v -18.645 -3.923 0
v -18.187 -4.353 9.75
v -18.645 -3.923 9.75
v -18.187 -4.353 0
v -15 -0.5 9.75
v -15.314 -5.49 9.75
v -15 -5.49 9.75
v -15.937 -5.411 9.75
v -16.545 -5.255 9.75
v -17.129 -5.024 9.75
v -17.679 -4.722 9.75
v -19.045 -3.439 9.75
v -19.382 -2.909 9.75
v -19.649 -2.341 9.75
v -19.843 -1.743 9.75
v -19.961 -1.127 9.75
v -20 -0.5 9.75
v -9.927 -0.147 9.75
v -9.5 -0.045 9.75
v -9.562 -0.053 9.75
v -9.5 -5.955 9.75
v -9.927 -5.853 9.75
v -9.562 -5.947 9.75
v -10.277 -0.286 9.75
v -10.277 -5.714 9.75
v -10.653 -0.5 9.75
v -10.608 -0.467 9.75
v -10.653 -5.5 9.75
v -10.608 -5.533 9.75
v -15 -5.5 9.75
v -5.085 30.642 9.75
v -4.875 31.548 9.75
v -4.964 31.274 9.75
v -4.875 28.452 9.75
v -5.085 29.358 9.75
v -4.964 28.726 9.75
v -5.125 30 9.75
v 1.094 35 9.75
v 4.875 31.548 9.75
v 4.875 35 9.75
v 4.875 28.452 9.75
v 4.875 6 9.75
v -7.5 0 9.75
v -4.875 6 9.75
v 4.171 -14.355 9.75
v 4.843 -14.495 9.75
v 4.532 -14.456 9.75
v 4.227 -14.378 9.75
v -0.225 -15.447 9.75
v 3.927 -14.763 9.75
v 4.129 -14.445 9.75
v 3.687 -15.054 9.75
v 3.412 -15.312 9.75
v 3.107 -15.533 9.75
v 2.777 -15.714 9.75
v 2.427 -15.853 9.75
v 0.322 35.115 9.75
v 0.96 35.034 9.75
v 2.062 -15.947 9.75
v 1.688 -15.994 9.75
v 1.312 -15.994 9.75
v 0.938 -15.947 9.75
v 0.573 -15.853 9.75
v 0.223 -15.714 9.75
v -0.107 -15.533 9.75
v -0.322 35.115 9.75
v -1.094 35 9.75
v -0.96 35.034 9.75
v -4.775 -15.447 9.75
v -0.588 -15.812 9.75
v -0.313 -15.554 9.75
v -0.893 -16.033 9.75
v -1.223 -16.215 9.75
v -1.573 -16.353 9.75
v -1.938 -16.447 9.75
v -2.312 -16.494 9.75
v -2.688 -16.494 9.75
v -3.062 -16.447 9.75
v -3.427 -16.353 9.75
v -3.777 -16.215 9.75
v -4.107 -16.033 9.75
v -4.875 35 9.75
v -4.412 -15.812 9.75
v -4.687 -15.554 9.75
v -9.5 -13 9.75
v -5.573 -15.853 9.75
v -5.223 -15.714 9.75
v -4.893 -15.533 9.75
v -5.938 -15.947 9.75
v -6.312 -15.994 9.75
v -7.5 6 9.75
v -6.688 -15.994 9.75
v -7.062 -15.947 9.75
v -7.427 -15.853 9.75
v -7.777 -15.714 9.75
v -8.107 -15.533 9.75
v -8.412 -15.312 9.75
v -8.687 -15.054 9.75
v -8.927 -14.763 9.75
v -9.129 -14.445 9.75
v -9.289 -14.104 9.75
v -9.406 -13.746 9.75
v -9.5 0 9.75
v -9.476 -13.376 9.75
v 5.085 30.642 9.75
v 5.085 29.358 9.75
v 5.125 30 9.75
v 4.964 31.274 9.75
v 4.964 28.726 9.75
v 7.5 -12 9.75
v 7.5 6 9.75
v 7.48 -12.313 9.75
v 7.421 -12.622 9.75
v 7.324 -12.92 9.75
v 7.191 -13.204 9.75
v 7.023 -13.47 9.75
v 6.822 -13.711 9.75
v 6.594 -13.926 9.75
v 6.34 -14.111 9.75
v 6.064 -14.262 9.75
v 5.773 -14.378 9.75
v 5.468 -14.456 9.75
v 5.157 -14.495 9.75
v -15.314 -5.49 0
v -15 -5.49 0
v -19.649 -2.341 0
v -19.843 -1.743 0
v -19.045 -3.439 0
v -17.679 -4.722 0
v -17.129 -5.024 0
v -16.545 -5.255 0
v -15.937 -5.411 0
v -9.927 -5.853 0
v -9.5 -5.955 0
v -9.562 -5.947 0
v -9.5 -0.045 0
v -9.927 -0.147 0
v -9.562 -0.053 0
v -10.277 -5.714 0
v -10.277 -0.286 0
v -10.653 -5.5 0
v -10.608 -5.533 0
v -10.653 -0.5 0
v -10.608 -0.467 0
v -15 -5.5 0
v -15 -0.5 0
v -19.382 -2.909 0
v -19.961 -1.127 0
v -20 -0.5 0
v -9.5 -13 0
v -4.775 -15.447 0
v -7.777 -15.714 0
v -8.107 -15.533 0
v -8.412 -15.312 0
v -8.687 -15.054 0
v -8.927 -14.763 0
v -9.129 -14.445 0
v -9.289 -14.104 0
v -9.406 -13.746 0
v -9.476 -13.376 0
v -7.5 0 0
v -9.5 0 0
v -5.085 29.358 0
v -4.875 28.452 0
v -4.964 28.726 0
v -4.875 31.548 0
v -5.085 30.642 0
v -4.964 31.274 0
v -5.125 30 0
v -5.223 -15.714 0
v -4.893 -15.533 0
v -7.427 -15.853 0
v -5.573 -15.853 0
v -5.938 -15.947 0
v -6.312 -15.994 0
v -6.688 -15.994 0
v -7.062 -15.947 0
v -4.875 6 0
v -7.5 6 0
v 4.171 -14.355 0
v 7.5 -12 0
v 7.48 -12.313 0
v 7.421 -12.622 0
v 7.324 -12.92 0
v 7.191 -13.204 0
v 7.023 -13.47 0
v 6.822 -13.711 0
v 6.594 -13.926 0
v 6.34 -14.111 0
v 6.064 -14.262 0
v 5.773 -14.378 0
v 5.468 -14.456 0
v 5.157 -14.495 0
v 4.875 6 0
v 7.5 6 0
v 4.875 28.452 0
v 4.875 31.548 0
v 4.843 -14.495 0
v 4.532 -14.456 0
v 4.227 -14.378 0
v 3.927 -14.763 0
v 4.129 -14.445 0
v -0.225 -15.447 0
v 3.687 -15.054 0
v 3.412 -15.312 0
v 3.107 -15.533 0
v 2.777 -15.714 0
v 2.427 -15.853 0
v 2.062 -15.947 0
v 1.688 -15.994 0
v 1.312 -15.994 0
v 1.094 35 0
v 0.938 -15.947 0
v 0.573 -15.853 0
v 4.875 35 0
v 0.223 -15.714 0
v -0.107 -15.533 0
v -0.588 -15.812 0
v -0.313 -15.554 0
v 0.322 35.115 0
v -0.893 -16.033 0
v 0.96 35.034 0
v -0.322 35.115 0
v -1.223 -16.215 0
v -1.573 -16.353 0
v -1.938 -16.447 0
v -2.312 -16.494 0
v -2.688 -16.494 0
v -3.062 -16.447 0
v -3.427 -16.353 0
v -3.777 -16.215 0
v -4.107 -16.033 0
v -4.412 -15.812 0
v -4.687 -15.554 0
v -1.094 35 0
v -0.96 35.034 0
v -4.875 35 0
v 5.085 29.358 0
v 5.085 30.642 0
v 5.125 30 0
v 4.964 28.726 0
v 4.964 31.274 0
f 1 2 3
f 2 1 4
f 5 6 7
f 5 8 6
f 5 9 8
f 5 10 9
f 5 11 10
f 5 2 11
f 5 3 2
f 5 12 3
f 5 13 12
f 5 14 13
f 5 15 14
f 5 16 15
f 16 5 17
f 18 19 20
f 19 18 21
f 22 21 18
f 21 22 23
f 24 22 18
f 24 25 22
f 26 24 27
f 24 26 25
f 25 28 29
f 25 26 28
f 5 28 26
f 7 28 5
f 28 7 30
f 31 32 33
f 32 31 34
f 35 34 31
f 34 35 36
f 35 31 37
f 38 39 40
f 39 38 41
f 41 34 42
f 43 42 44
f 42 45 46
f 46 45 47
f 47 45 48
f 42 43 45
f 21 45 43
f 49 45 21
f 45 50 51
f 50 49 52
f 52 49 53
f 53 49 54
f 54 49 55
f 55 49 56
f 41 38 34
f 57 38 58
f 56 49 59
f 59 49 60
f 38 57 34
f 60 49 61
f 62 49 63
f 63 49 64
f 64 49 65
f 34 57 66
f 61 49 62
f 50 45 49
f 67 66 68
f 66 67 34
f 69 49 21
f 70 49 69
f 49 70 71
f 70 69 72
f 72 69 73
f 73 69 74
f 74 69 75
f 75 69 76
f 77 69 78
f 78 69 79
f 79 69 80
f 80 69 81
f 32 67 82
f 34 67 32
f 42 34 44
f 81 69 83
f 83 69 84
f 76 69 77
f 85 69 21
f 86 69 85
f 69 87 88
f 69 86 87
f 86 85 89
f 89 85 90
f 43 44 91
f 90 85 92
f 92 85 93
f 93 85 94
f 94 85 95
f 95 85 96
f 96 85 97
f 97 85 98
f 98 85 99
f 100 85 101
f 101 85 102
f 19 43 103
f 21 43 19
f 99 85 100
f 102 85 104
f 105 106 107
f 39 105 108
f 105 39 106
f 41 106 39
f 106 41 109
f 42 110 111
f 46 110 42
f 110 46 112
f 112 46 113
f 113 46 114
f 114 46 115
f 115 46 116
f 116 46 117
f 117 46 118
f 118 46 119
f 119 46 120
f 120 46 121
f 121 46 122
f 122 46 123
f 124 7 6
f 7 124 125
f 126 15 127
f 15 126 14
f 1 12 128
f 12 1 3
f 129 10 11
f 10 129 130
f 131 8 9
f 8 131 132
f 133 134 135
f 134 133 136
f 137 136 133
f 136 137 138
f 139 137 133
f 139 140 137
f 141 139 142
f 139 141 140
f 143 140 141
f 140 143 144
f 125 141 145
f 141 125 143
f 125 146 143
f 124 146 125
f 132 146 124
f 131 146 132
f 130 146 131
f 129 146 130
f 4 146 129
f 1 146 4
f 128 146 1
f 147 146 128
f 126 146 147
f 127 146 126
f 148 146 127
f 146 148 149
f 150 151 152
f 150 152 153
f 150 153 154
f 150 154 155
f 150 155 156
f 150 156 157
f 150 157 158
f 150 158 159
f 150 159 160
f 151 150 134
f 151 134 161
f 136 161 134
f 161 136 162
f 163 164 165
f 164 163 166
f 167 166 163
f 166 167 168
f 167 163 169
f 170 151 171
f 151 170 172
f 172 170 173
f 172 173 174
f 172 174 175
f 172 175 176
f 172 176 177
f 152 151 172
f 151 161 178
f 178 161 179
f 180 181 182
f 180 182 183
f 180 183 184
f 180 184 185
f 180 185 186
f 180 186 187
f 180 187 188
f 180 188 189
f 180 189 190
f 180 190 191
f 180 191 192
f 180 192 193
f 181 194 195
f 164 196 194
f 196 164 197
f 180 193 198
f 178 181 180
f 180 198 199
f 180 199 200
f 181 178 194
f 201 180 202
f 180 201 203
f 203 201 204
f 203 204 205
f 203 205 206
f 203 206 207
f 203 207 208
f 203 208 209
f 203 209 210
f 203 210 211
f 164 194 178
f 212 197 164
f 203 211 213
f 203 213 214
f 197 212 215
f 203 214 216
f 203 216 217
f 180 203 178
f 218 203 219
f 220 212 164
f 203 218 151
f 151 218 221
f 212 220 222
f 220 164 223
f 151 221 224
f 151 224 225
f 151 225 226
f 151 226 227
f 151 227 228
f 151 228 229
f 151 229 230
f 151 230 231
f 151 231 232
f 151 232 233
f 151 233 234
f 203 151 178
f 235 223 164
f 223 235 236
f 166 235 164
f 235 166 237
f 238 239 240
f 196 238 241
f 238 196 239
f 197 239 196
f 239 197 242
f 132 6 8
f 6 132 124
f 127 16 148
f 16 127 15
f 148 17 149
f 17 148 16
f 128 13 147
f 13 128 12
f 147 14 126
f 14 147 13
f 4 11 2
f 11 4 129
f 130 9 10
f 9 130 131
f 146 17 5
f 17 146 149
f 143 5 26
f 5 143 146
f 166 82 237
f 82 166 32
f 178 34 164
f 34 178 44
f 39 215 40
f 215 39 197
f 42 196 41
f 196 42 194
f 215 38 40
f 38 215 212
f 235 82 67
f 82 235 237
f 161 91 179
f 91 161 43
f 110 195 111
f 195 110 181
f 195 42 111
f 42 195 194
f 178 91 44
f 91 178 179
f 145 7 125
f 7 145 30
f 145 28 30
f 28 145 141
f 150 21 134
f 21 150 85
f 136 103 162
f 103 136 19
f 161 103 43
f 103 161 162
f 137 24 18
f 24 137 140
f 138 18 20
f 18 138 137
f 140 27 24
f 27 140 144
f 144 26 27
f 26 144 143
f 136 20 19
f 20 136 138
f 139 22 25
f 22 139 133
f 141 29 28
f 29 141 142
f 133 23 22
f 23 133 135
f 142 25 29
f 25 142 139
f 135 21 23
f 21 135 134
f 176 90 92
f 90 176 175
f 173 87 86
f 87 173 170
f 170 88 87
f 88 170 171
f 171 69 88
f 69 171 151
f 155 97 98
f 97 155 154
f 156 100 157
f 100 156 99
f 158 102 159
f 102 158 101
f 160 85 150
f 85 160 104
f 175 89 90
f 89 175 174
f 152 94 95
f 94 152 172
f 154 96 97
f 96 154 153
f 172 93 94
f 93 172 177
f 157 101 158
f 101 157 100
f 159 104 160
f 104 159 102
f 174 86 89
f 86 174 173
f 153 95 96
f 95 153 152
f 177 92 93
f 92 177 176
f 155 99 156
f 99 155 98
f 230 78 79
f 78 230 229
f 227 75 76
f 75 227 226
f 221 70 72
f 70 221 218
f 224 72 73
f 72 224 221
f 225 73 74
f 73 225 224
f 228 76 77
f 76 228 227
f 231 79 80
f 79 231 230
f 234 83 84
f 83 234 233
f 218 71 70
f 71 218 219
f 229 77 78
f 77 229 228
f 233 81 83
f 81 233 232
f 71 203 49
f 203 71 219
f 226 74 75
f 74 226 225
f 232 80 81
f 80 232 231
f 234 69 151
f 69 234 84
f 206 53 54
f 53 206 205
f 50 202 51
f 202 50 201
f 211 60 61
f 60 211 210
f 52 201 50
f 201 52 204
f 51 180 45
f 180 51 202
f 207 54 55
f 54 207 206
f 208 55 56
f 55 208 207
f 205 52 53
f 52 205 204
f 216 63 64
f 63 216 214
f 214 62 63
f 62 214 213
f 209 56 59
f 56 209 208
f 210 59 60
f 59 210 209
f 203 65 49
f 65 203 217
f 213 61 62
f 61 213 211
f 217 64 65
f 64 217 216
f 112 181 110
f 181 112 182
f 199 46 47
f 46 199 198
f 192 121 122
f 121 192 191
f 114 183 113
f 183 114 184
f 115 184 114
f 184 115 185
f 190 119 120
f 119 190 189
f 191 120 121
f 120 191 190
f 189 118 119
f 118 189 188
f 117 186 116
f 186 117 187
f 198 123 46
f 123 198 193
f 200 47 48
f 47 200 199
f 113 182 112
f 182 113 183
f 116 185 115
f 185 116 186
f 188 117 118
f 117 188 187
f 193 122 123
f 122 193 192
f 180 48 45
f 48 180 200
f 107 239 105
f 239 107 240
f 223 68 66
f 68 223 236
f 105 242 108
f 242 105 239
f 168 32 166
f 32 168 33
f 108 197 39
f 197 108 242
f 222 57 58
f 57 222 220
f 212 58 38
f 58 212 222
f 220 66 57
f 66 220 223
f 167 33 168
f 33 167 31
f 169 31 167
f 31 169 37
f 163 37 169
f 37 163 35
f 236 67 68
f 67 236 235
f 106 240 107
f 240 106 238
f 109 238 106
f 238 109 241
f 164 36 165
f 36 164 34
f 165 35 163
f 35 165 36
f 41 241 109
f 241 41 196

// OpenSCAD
// thumbsup insert (need 2 items)

// clearance
tol = 0.25;

// innere insert parameters
iih = 10;
iiw = 10;
iil = 20;

// outer insert parameters
iod = 15;
ioh = iih;
irh = iih;
irw = 15;
irl = 6;

real_h = iih - tol;

pp = [[-(iiw - tol) / 2, 0],
	[(iiw - tol) / 2, 0],
	[(iiw - tol - tol) / 2, 5],
	[(iiw - tol) / 4, 1],
	[0, 3],
	[-(iiw - tol) / 4, 4]];
pl = [[0, 1, 2, 3, 4]];

translate([-(iiw - tol) / 2, 0, 0]) cube([iiw - tol, iil + irw, real_h]);
translate([-irw / 2, -irl, 0]) cube([irw, irl * 2, real_h]);

translate([-15, -5.5, 0]) cube([5, 5, real_h]);
translate([-15, -0.5, 0]) difference() {
	cylinder(d = 10, h = real_h, $fn = 50);
	translate([-5, 0, 0]) cube([10, 5, real_h]);
}

translate([-9.5, -12, 0]) cube([17, 12, real_h]);
translate([-9.5, -13, 0]) cube([4, 4, real_h]);
translate([-9, -3, 0]) cylinder(d = 6, h = real_h, $fn = 50);
translate([-6.5, -13, 0]) cylinder(d = 6, h = real_h, $fn = 50);
translate([-2.5, -13.5, 0]) cylinder(d = 6, h = real_h, $fn = 50);
translate([1.5, -13, 0]) cylinder(d = 6, h = real_h, $fn = 50);
translate([5, -12, 0]) cylinder(d = 5, h = real_h, $fn = 50);

translate([0, iil + irw - iih / 2, 0]) cylinder(d = iiw + tol, h = real_h, $fn = 50);
